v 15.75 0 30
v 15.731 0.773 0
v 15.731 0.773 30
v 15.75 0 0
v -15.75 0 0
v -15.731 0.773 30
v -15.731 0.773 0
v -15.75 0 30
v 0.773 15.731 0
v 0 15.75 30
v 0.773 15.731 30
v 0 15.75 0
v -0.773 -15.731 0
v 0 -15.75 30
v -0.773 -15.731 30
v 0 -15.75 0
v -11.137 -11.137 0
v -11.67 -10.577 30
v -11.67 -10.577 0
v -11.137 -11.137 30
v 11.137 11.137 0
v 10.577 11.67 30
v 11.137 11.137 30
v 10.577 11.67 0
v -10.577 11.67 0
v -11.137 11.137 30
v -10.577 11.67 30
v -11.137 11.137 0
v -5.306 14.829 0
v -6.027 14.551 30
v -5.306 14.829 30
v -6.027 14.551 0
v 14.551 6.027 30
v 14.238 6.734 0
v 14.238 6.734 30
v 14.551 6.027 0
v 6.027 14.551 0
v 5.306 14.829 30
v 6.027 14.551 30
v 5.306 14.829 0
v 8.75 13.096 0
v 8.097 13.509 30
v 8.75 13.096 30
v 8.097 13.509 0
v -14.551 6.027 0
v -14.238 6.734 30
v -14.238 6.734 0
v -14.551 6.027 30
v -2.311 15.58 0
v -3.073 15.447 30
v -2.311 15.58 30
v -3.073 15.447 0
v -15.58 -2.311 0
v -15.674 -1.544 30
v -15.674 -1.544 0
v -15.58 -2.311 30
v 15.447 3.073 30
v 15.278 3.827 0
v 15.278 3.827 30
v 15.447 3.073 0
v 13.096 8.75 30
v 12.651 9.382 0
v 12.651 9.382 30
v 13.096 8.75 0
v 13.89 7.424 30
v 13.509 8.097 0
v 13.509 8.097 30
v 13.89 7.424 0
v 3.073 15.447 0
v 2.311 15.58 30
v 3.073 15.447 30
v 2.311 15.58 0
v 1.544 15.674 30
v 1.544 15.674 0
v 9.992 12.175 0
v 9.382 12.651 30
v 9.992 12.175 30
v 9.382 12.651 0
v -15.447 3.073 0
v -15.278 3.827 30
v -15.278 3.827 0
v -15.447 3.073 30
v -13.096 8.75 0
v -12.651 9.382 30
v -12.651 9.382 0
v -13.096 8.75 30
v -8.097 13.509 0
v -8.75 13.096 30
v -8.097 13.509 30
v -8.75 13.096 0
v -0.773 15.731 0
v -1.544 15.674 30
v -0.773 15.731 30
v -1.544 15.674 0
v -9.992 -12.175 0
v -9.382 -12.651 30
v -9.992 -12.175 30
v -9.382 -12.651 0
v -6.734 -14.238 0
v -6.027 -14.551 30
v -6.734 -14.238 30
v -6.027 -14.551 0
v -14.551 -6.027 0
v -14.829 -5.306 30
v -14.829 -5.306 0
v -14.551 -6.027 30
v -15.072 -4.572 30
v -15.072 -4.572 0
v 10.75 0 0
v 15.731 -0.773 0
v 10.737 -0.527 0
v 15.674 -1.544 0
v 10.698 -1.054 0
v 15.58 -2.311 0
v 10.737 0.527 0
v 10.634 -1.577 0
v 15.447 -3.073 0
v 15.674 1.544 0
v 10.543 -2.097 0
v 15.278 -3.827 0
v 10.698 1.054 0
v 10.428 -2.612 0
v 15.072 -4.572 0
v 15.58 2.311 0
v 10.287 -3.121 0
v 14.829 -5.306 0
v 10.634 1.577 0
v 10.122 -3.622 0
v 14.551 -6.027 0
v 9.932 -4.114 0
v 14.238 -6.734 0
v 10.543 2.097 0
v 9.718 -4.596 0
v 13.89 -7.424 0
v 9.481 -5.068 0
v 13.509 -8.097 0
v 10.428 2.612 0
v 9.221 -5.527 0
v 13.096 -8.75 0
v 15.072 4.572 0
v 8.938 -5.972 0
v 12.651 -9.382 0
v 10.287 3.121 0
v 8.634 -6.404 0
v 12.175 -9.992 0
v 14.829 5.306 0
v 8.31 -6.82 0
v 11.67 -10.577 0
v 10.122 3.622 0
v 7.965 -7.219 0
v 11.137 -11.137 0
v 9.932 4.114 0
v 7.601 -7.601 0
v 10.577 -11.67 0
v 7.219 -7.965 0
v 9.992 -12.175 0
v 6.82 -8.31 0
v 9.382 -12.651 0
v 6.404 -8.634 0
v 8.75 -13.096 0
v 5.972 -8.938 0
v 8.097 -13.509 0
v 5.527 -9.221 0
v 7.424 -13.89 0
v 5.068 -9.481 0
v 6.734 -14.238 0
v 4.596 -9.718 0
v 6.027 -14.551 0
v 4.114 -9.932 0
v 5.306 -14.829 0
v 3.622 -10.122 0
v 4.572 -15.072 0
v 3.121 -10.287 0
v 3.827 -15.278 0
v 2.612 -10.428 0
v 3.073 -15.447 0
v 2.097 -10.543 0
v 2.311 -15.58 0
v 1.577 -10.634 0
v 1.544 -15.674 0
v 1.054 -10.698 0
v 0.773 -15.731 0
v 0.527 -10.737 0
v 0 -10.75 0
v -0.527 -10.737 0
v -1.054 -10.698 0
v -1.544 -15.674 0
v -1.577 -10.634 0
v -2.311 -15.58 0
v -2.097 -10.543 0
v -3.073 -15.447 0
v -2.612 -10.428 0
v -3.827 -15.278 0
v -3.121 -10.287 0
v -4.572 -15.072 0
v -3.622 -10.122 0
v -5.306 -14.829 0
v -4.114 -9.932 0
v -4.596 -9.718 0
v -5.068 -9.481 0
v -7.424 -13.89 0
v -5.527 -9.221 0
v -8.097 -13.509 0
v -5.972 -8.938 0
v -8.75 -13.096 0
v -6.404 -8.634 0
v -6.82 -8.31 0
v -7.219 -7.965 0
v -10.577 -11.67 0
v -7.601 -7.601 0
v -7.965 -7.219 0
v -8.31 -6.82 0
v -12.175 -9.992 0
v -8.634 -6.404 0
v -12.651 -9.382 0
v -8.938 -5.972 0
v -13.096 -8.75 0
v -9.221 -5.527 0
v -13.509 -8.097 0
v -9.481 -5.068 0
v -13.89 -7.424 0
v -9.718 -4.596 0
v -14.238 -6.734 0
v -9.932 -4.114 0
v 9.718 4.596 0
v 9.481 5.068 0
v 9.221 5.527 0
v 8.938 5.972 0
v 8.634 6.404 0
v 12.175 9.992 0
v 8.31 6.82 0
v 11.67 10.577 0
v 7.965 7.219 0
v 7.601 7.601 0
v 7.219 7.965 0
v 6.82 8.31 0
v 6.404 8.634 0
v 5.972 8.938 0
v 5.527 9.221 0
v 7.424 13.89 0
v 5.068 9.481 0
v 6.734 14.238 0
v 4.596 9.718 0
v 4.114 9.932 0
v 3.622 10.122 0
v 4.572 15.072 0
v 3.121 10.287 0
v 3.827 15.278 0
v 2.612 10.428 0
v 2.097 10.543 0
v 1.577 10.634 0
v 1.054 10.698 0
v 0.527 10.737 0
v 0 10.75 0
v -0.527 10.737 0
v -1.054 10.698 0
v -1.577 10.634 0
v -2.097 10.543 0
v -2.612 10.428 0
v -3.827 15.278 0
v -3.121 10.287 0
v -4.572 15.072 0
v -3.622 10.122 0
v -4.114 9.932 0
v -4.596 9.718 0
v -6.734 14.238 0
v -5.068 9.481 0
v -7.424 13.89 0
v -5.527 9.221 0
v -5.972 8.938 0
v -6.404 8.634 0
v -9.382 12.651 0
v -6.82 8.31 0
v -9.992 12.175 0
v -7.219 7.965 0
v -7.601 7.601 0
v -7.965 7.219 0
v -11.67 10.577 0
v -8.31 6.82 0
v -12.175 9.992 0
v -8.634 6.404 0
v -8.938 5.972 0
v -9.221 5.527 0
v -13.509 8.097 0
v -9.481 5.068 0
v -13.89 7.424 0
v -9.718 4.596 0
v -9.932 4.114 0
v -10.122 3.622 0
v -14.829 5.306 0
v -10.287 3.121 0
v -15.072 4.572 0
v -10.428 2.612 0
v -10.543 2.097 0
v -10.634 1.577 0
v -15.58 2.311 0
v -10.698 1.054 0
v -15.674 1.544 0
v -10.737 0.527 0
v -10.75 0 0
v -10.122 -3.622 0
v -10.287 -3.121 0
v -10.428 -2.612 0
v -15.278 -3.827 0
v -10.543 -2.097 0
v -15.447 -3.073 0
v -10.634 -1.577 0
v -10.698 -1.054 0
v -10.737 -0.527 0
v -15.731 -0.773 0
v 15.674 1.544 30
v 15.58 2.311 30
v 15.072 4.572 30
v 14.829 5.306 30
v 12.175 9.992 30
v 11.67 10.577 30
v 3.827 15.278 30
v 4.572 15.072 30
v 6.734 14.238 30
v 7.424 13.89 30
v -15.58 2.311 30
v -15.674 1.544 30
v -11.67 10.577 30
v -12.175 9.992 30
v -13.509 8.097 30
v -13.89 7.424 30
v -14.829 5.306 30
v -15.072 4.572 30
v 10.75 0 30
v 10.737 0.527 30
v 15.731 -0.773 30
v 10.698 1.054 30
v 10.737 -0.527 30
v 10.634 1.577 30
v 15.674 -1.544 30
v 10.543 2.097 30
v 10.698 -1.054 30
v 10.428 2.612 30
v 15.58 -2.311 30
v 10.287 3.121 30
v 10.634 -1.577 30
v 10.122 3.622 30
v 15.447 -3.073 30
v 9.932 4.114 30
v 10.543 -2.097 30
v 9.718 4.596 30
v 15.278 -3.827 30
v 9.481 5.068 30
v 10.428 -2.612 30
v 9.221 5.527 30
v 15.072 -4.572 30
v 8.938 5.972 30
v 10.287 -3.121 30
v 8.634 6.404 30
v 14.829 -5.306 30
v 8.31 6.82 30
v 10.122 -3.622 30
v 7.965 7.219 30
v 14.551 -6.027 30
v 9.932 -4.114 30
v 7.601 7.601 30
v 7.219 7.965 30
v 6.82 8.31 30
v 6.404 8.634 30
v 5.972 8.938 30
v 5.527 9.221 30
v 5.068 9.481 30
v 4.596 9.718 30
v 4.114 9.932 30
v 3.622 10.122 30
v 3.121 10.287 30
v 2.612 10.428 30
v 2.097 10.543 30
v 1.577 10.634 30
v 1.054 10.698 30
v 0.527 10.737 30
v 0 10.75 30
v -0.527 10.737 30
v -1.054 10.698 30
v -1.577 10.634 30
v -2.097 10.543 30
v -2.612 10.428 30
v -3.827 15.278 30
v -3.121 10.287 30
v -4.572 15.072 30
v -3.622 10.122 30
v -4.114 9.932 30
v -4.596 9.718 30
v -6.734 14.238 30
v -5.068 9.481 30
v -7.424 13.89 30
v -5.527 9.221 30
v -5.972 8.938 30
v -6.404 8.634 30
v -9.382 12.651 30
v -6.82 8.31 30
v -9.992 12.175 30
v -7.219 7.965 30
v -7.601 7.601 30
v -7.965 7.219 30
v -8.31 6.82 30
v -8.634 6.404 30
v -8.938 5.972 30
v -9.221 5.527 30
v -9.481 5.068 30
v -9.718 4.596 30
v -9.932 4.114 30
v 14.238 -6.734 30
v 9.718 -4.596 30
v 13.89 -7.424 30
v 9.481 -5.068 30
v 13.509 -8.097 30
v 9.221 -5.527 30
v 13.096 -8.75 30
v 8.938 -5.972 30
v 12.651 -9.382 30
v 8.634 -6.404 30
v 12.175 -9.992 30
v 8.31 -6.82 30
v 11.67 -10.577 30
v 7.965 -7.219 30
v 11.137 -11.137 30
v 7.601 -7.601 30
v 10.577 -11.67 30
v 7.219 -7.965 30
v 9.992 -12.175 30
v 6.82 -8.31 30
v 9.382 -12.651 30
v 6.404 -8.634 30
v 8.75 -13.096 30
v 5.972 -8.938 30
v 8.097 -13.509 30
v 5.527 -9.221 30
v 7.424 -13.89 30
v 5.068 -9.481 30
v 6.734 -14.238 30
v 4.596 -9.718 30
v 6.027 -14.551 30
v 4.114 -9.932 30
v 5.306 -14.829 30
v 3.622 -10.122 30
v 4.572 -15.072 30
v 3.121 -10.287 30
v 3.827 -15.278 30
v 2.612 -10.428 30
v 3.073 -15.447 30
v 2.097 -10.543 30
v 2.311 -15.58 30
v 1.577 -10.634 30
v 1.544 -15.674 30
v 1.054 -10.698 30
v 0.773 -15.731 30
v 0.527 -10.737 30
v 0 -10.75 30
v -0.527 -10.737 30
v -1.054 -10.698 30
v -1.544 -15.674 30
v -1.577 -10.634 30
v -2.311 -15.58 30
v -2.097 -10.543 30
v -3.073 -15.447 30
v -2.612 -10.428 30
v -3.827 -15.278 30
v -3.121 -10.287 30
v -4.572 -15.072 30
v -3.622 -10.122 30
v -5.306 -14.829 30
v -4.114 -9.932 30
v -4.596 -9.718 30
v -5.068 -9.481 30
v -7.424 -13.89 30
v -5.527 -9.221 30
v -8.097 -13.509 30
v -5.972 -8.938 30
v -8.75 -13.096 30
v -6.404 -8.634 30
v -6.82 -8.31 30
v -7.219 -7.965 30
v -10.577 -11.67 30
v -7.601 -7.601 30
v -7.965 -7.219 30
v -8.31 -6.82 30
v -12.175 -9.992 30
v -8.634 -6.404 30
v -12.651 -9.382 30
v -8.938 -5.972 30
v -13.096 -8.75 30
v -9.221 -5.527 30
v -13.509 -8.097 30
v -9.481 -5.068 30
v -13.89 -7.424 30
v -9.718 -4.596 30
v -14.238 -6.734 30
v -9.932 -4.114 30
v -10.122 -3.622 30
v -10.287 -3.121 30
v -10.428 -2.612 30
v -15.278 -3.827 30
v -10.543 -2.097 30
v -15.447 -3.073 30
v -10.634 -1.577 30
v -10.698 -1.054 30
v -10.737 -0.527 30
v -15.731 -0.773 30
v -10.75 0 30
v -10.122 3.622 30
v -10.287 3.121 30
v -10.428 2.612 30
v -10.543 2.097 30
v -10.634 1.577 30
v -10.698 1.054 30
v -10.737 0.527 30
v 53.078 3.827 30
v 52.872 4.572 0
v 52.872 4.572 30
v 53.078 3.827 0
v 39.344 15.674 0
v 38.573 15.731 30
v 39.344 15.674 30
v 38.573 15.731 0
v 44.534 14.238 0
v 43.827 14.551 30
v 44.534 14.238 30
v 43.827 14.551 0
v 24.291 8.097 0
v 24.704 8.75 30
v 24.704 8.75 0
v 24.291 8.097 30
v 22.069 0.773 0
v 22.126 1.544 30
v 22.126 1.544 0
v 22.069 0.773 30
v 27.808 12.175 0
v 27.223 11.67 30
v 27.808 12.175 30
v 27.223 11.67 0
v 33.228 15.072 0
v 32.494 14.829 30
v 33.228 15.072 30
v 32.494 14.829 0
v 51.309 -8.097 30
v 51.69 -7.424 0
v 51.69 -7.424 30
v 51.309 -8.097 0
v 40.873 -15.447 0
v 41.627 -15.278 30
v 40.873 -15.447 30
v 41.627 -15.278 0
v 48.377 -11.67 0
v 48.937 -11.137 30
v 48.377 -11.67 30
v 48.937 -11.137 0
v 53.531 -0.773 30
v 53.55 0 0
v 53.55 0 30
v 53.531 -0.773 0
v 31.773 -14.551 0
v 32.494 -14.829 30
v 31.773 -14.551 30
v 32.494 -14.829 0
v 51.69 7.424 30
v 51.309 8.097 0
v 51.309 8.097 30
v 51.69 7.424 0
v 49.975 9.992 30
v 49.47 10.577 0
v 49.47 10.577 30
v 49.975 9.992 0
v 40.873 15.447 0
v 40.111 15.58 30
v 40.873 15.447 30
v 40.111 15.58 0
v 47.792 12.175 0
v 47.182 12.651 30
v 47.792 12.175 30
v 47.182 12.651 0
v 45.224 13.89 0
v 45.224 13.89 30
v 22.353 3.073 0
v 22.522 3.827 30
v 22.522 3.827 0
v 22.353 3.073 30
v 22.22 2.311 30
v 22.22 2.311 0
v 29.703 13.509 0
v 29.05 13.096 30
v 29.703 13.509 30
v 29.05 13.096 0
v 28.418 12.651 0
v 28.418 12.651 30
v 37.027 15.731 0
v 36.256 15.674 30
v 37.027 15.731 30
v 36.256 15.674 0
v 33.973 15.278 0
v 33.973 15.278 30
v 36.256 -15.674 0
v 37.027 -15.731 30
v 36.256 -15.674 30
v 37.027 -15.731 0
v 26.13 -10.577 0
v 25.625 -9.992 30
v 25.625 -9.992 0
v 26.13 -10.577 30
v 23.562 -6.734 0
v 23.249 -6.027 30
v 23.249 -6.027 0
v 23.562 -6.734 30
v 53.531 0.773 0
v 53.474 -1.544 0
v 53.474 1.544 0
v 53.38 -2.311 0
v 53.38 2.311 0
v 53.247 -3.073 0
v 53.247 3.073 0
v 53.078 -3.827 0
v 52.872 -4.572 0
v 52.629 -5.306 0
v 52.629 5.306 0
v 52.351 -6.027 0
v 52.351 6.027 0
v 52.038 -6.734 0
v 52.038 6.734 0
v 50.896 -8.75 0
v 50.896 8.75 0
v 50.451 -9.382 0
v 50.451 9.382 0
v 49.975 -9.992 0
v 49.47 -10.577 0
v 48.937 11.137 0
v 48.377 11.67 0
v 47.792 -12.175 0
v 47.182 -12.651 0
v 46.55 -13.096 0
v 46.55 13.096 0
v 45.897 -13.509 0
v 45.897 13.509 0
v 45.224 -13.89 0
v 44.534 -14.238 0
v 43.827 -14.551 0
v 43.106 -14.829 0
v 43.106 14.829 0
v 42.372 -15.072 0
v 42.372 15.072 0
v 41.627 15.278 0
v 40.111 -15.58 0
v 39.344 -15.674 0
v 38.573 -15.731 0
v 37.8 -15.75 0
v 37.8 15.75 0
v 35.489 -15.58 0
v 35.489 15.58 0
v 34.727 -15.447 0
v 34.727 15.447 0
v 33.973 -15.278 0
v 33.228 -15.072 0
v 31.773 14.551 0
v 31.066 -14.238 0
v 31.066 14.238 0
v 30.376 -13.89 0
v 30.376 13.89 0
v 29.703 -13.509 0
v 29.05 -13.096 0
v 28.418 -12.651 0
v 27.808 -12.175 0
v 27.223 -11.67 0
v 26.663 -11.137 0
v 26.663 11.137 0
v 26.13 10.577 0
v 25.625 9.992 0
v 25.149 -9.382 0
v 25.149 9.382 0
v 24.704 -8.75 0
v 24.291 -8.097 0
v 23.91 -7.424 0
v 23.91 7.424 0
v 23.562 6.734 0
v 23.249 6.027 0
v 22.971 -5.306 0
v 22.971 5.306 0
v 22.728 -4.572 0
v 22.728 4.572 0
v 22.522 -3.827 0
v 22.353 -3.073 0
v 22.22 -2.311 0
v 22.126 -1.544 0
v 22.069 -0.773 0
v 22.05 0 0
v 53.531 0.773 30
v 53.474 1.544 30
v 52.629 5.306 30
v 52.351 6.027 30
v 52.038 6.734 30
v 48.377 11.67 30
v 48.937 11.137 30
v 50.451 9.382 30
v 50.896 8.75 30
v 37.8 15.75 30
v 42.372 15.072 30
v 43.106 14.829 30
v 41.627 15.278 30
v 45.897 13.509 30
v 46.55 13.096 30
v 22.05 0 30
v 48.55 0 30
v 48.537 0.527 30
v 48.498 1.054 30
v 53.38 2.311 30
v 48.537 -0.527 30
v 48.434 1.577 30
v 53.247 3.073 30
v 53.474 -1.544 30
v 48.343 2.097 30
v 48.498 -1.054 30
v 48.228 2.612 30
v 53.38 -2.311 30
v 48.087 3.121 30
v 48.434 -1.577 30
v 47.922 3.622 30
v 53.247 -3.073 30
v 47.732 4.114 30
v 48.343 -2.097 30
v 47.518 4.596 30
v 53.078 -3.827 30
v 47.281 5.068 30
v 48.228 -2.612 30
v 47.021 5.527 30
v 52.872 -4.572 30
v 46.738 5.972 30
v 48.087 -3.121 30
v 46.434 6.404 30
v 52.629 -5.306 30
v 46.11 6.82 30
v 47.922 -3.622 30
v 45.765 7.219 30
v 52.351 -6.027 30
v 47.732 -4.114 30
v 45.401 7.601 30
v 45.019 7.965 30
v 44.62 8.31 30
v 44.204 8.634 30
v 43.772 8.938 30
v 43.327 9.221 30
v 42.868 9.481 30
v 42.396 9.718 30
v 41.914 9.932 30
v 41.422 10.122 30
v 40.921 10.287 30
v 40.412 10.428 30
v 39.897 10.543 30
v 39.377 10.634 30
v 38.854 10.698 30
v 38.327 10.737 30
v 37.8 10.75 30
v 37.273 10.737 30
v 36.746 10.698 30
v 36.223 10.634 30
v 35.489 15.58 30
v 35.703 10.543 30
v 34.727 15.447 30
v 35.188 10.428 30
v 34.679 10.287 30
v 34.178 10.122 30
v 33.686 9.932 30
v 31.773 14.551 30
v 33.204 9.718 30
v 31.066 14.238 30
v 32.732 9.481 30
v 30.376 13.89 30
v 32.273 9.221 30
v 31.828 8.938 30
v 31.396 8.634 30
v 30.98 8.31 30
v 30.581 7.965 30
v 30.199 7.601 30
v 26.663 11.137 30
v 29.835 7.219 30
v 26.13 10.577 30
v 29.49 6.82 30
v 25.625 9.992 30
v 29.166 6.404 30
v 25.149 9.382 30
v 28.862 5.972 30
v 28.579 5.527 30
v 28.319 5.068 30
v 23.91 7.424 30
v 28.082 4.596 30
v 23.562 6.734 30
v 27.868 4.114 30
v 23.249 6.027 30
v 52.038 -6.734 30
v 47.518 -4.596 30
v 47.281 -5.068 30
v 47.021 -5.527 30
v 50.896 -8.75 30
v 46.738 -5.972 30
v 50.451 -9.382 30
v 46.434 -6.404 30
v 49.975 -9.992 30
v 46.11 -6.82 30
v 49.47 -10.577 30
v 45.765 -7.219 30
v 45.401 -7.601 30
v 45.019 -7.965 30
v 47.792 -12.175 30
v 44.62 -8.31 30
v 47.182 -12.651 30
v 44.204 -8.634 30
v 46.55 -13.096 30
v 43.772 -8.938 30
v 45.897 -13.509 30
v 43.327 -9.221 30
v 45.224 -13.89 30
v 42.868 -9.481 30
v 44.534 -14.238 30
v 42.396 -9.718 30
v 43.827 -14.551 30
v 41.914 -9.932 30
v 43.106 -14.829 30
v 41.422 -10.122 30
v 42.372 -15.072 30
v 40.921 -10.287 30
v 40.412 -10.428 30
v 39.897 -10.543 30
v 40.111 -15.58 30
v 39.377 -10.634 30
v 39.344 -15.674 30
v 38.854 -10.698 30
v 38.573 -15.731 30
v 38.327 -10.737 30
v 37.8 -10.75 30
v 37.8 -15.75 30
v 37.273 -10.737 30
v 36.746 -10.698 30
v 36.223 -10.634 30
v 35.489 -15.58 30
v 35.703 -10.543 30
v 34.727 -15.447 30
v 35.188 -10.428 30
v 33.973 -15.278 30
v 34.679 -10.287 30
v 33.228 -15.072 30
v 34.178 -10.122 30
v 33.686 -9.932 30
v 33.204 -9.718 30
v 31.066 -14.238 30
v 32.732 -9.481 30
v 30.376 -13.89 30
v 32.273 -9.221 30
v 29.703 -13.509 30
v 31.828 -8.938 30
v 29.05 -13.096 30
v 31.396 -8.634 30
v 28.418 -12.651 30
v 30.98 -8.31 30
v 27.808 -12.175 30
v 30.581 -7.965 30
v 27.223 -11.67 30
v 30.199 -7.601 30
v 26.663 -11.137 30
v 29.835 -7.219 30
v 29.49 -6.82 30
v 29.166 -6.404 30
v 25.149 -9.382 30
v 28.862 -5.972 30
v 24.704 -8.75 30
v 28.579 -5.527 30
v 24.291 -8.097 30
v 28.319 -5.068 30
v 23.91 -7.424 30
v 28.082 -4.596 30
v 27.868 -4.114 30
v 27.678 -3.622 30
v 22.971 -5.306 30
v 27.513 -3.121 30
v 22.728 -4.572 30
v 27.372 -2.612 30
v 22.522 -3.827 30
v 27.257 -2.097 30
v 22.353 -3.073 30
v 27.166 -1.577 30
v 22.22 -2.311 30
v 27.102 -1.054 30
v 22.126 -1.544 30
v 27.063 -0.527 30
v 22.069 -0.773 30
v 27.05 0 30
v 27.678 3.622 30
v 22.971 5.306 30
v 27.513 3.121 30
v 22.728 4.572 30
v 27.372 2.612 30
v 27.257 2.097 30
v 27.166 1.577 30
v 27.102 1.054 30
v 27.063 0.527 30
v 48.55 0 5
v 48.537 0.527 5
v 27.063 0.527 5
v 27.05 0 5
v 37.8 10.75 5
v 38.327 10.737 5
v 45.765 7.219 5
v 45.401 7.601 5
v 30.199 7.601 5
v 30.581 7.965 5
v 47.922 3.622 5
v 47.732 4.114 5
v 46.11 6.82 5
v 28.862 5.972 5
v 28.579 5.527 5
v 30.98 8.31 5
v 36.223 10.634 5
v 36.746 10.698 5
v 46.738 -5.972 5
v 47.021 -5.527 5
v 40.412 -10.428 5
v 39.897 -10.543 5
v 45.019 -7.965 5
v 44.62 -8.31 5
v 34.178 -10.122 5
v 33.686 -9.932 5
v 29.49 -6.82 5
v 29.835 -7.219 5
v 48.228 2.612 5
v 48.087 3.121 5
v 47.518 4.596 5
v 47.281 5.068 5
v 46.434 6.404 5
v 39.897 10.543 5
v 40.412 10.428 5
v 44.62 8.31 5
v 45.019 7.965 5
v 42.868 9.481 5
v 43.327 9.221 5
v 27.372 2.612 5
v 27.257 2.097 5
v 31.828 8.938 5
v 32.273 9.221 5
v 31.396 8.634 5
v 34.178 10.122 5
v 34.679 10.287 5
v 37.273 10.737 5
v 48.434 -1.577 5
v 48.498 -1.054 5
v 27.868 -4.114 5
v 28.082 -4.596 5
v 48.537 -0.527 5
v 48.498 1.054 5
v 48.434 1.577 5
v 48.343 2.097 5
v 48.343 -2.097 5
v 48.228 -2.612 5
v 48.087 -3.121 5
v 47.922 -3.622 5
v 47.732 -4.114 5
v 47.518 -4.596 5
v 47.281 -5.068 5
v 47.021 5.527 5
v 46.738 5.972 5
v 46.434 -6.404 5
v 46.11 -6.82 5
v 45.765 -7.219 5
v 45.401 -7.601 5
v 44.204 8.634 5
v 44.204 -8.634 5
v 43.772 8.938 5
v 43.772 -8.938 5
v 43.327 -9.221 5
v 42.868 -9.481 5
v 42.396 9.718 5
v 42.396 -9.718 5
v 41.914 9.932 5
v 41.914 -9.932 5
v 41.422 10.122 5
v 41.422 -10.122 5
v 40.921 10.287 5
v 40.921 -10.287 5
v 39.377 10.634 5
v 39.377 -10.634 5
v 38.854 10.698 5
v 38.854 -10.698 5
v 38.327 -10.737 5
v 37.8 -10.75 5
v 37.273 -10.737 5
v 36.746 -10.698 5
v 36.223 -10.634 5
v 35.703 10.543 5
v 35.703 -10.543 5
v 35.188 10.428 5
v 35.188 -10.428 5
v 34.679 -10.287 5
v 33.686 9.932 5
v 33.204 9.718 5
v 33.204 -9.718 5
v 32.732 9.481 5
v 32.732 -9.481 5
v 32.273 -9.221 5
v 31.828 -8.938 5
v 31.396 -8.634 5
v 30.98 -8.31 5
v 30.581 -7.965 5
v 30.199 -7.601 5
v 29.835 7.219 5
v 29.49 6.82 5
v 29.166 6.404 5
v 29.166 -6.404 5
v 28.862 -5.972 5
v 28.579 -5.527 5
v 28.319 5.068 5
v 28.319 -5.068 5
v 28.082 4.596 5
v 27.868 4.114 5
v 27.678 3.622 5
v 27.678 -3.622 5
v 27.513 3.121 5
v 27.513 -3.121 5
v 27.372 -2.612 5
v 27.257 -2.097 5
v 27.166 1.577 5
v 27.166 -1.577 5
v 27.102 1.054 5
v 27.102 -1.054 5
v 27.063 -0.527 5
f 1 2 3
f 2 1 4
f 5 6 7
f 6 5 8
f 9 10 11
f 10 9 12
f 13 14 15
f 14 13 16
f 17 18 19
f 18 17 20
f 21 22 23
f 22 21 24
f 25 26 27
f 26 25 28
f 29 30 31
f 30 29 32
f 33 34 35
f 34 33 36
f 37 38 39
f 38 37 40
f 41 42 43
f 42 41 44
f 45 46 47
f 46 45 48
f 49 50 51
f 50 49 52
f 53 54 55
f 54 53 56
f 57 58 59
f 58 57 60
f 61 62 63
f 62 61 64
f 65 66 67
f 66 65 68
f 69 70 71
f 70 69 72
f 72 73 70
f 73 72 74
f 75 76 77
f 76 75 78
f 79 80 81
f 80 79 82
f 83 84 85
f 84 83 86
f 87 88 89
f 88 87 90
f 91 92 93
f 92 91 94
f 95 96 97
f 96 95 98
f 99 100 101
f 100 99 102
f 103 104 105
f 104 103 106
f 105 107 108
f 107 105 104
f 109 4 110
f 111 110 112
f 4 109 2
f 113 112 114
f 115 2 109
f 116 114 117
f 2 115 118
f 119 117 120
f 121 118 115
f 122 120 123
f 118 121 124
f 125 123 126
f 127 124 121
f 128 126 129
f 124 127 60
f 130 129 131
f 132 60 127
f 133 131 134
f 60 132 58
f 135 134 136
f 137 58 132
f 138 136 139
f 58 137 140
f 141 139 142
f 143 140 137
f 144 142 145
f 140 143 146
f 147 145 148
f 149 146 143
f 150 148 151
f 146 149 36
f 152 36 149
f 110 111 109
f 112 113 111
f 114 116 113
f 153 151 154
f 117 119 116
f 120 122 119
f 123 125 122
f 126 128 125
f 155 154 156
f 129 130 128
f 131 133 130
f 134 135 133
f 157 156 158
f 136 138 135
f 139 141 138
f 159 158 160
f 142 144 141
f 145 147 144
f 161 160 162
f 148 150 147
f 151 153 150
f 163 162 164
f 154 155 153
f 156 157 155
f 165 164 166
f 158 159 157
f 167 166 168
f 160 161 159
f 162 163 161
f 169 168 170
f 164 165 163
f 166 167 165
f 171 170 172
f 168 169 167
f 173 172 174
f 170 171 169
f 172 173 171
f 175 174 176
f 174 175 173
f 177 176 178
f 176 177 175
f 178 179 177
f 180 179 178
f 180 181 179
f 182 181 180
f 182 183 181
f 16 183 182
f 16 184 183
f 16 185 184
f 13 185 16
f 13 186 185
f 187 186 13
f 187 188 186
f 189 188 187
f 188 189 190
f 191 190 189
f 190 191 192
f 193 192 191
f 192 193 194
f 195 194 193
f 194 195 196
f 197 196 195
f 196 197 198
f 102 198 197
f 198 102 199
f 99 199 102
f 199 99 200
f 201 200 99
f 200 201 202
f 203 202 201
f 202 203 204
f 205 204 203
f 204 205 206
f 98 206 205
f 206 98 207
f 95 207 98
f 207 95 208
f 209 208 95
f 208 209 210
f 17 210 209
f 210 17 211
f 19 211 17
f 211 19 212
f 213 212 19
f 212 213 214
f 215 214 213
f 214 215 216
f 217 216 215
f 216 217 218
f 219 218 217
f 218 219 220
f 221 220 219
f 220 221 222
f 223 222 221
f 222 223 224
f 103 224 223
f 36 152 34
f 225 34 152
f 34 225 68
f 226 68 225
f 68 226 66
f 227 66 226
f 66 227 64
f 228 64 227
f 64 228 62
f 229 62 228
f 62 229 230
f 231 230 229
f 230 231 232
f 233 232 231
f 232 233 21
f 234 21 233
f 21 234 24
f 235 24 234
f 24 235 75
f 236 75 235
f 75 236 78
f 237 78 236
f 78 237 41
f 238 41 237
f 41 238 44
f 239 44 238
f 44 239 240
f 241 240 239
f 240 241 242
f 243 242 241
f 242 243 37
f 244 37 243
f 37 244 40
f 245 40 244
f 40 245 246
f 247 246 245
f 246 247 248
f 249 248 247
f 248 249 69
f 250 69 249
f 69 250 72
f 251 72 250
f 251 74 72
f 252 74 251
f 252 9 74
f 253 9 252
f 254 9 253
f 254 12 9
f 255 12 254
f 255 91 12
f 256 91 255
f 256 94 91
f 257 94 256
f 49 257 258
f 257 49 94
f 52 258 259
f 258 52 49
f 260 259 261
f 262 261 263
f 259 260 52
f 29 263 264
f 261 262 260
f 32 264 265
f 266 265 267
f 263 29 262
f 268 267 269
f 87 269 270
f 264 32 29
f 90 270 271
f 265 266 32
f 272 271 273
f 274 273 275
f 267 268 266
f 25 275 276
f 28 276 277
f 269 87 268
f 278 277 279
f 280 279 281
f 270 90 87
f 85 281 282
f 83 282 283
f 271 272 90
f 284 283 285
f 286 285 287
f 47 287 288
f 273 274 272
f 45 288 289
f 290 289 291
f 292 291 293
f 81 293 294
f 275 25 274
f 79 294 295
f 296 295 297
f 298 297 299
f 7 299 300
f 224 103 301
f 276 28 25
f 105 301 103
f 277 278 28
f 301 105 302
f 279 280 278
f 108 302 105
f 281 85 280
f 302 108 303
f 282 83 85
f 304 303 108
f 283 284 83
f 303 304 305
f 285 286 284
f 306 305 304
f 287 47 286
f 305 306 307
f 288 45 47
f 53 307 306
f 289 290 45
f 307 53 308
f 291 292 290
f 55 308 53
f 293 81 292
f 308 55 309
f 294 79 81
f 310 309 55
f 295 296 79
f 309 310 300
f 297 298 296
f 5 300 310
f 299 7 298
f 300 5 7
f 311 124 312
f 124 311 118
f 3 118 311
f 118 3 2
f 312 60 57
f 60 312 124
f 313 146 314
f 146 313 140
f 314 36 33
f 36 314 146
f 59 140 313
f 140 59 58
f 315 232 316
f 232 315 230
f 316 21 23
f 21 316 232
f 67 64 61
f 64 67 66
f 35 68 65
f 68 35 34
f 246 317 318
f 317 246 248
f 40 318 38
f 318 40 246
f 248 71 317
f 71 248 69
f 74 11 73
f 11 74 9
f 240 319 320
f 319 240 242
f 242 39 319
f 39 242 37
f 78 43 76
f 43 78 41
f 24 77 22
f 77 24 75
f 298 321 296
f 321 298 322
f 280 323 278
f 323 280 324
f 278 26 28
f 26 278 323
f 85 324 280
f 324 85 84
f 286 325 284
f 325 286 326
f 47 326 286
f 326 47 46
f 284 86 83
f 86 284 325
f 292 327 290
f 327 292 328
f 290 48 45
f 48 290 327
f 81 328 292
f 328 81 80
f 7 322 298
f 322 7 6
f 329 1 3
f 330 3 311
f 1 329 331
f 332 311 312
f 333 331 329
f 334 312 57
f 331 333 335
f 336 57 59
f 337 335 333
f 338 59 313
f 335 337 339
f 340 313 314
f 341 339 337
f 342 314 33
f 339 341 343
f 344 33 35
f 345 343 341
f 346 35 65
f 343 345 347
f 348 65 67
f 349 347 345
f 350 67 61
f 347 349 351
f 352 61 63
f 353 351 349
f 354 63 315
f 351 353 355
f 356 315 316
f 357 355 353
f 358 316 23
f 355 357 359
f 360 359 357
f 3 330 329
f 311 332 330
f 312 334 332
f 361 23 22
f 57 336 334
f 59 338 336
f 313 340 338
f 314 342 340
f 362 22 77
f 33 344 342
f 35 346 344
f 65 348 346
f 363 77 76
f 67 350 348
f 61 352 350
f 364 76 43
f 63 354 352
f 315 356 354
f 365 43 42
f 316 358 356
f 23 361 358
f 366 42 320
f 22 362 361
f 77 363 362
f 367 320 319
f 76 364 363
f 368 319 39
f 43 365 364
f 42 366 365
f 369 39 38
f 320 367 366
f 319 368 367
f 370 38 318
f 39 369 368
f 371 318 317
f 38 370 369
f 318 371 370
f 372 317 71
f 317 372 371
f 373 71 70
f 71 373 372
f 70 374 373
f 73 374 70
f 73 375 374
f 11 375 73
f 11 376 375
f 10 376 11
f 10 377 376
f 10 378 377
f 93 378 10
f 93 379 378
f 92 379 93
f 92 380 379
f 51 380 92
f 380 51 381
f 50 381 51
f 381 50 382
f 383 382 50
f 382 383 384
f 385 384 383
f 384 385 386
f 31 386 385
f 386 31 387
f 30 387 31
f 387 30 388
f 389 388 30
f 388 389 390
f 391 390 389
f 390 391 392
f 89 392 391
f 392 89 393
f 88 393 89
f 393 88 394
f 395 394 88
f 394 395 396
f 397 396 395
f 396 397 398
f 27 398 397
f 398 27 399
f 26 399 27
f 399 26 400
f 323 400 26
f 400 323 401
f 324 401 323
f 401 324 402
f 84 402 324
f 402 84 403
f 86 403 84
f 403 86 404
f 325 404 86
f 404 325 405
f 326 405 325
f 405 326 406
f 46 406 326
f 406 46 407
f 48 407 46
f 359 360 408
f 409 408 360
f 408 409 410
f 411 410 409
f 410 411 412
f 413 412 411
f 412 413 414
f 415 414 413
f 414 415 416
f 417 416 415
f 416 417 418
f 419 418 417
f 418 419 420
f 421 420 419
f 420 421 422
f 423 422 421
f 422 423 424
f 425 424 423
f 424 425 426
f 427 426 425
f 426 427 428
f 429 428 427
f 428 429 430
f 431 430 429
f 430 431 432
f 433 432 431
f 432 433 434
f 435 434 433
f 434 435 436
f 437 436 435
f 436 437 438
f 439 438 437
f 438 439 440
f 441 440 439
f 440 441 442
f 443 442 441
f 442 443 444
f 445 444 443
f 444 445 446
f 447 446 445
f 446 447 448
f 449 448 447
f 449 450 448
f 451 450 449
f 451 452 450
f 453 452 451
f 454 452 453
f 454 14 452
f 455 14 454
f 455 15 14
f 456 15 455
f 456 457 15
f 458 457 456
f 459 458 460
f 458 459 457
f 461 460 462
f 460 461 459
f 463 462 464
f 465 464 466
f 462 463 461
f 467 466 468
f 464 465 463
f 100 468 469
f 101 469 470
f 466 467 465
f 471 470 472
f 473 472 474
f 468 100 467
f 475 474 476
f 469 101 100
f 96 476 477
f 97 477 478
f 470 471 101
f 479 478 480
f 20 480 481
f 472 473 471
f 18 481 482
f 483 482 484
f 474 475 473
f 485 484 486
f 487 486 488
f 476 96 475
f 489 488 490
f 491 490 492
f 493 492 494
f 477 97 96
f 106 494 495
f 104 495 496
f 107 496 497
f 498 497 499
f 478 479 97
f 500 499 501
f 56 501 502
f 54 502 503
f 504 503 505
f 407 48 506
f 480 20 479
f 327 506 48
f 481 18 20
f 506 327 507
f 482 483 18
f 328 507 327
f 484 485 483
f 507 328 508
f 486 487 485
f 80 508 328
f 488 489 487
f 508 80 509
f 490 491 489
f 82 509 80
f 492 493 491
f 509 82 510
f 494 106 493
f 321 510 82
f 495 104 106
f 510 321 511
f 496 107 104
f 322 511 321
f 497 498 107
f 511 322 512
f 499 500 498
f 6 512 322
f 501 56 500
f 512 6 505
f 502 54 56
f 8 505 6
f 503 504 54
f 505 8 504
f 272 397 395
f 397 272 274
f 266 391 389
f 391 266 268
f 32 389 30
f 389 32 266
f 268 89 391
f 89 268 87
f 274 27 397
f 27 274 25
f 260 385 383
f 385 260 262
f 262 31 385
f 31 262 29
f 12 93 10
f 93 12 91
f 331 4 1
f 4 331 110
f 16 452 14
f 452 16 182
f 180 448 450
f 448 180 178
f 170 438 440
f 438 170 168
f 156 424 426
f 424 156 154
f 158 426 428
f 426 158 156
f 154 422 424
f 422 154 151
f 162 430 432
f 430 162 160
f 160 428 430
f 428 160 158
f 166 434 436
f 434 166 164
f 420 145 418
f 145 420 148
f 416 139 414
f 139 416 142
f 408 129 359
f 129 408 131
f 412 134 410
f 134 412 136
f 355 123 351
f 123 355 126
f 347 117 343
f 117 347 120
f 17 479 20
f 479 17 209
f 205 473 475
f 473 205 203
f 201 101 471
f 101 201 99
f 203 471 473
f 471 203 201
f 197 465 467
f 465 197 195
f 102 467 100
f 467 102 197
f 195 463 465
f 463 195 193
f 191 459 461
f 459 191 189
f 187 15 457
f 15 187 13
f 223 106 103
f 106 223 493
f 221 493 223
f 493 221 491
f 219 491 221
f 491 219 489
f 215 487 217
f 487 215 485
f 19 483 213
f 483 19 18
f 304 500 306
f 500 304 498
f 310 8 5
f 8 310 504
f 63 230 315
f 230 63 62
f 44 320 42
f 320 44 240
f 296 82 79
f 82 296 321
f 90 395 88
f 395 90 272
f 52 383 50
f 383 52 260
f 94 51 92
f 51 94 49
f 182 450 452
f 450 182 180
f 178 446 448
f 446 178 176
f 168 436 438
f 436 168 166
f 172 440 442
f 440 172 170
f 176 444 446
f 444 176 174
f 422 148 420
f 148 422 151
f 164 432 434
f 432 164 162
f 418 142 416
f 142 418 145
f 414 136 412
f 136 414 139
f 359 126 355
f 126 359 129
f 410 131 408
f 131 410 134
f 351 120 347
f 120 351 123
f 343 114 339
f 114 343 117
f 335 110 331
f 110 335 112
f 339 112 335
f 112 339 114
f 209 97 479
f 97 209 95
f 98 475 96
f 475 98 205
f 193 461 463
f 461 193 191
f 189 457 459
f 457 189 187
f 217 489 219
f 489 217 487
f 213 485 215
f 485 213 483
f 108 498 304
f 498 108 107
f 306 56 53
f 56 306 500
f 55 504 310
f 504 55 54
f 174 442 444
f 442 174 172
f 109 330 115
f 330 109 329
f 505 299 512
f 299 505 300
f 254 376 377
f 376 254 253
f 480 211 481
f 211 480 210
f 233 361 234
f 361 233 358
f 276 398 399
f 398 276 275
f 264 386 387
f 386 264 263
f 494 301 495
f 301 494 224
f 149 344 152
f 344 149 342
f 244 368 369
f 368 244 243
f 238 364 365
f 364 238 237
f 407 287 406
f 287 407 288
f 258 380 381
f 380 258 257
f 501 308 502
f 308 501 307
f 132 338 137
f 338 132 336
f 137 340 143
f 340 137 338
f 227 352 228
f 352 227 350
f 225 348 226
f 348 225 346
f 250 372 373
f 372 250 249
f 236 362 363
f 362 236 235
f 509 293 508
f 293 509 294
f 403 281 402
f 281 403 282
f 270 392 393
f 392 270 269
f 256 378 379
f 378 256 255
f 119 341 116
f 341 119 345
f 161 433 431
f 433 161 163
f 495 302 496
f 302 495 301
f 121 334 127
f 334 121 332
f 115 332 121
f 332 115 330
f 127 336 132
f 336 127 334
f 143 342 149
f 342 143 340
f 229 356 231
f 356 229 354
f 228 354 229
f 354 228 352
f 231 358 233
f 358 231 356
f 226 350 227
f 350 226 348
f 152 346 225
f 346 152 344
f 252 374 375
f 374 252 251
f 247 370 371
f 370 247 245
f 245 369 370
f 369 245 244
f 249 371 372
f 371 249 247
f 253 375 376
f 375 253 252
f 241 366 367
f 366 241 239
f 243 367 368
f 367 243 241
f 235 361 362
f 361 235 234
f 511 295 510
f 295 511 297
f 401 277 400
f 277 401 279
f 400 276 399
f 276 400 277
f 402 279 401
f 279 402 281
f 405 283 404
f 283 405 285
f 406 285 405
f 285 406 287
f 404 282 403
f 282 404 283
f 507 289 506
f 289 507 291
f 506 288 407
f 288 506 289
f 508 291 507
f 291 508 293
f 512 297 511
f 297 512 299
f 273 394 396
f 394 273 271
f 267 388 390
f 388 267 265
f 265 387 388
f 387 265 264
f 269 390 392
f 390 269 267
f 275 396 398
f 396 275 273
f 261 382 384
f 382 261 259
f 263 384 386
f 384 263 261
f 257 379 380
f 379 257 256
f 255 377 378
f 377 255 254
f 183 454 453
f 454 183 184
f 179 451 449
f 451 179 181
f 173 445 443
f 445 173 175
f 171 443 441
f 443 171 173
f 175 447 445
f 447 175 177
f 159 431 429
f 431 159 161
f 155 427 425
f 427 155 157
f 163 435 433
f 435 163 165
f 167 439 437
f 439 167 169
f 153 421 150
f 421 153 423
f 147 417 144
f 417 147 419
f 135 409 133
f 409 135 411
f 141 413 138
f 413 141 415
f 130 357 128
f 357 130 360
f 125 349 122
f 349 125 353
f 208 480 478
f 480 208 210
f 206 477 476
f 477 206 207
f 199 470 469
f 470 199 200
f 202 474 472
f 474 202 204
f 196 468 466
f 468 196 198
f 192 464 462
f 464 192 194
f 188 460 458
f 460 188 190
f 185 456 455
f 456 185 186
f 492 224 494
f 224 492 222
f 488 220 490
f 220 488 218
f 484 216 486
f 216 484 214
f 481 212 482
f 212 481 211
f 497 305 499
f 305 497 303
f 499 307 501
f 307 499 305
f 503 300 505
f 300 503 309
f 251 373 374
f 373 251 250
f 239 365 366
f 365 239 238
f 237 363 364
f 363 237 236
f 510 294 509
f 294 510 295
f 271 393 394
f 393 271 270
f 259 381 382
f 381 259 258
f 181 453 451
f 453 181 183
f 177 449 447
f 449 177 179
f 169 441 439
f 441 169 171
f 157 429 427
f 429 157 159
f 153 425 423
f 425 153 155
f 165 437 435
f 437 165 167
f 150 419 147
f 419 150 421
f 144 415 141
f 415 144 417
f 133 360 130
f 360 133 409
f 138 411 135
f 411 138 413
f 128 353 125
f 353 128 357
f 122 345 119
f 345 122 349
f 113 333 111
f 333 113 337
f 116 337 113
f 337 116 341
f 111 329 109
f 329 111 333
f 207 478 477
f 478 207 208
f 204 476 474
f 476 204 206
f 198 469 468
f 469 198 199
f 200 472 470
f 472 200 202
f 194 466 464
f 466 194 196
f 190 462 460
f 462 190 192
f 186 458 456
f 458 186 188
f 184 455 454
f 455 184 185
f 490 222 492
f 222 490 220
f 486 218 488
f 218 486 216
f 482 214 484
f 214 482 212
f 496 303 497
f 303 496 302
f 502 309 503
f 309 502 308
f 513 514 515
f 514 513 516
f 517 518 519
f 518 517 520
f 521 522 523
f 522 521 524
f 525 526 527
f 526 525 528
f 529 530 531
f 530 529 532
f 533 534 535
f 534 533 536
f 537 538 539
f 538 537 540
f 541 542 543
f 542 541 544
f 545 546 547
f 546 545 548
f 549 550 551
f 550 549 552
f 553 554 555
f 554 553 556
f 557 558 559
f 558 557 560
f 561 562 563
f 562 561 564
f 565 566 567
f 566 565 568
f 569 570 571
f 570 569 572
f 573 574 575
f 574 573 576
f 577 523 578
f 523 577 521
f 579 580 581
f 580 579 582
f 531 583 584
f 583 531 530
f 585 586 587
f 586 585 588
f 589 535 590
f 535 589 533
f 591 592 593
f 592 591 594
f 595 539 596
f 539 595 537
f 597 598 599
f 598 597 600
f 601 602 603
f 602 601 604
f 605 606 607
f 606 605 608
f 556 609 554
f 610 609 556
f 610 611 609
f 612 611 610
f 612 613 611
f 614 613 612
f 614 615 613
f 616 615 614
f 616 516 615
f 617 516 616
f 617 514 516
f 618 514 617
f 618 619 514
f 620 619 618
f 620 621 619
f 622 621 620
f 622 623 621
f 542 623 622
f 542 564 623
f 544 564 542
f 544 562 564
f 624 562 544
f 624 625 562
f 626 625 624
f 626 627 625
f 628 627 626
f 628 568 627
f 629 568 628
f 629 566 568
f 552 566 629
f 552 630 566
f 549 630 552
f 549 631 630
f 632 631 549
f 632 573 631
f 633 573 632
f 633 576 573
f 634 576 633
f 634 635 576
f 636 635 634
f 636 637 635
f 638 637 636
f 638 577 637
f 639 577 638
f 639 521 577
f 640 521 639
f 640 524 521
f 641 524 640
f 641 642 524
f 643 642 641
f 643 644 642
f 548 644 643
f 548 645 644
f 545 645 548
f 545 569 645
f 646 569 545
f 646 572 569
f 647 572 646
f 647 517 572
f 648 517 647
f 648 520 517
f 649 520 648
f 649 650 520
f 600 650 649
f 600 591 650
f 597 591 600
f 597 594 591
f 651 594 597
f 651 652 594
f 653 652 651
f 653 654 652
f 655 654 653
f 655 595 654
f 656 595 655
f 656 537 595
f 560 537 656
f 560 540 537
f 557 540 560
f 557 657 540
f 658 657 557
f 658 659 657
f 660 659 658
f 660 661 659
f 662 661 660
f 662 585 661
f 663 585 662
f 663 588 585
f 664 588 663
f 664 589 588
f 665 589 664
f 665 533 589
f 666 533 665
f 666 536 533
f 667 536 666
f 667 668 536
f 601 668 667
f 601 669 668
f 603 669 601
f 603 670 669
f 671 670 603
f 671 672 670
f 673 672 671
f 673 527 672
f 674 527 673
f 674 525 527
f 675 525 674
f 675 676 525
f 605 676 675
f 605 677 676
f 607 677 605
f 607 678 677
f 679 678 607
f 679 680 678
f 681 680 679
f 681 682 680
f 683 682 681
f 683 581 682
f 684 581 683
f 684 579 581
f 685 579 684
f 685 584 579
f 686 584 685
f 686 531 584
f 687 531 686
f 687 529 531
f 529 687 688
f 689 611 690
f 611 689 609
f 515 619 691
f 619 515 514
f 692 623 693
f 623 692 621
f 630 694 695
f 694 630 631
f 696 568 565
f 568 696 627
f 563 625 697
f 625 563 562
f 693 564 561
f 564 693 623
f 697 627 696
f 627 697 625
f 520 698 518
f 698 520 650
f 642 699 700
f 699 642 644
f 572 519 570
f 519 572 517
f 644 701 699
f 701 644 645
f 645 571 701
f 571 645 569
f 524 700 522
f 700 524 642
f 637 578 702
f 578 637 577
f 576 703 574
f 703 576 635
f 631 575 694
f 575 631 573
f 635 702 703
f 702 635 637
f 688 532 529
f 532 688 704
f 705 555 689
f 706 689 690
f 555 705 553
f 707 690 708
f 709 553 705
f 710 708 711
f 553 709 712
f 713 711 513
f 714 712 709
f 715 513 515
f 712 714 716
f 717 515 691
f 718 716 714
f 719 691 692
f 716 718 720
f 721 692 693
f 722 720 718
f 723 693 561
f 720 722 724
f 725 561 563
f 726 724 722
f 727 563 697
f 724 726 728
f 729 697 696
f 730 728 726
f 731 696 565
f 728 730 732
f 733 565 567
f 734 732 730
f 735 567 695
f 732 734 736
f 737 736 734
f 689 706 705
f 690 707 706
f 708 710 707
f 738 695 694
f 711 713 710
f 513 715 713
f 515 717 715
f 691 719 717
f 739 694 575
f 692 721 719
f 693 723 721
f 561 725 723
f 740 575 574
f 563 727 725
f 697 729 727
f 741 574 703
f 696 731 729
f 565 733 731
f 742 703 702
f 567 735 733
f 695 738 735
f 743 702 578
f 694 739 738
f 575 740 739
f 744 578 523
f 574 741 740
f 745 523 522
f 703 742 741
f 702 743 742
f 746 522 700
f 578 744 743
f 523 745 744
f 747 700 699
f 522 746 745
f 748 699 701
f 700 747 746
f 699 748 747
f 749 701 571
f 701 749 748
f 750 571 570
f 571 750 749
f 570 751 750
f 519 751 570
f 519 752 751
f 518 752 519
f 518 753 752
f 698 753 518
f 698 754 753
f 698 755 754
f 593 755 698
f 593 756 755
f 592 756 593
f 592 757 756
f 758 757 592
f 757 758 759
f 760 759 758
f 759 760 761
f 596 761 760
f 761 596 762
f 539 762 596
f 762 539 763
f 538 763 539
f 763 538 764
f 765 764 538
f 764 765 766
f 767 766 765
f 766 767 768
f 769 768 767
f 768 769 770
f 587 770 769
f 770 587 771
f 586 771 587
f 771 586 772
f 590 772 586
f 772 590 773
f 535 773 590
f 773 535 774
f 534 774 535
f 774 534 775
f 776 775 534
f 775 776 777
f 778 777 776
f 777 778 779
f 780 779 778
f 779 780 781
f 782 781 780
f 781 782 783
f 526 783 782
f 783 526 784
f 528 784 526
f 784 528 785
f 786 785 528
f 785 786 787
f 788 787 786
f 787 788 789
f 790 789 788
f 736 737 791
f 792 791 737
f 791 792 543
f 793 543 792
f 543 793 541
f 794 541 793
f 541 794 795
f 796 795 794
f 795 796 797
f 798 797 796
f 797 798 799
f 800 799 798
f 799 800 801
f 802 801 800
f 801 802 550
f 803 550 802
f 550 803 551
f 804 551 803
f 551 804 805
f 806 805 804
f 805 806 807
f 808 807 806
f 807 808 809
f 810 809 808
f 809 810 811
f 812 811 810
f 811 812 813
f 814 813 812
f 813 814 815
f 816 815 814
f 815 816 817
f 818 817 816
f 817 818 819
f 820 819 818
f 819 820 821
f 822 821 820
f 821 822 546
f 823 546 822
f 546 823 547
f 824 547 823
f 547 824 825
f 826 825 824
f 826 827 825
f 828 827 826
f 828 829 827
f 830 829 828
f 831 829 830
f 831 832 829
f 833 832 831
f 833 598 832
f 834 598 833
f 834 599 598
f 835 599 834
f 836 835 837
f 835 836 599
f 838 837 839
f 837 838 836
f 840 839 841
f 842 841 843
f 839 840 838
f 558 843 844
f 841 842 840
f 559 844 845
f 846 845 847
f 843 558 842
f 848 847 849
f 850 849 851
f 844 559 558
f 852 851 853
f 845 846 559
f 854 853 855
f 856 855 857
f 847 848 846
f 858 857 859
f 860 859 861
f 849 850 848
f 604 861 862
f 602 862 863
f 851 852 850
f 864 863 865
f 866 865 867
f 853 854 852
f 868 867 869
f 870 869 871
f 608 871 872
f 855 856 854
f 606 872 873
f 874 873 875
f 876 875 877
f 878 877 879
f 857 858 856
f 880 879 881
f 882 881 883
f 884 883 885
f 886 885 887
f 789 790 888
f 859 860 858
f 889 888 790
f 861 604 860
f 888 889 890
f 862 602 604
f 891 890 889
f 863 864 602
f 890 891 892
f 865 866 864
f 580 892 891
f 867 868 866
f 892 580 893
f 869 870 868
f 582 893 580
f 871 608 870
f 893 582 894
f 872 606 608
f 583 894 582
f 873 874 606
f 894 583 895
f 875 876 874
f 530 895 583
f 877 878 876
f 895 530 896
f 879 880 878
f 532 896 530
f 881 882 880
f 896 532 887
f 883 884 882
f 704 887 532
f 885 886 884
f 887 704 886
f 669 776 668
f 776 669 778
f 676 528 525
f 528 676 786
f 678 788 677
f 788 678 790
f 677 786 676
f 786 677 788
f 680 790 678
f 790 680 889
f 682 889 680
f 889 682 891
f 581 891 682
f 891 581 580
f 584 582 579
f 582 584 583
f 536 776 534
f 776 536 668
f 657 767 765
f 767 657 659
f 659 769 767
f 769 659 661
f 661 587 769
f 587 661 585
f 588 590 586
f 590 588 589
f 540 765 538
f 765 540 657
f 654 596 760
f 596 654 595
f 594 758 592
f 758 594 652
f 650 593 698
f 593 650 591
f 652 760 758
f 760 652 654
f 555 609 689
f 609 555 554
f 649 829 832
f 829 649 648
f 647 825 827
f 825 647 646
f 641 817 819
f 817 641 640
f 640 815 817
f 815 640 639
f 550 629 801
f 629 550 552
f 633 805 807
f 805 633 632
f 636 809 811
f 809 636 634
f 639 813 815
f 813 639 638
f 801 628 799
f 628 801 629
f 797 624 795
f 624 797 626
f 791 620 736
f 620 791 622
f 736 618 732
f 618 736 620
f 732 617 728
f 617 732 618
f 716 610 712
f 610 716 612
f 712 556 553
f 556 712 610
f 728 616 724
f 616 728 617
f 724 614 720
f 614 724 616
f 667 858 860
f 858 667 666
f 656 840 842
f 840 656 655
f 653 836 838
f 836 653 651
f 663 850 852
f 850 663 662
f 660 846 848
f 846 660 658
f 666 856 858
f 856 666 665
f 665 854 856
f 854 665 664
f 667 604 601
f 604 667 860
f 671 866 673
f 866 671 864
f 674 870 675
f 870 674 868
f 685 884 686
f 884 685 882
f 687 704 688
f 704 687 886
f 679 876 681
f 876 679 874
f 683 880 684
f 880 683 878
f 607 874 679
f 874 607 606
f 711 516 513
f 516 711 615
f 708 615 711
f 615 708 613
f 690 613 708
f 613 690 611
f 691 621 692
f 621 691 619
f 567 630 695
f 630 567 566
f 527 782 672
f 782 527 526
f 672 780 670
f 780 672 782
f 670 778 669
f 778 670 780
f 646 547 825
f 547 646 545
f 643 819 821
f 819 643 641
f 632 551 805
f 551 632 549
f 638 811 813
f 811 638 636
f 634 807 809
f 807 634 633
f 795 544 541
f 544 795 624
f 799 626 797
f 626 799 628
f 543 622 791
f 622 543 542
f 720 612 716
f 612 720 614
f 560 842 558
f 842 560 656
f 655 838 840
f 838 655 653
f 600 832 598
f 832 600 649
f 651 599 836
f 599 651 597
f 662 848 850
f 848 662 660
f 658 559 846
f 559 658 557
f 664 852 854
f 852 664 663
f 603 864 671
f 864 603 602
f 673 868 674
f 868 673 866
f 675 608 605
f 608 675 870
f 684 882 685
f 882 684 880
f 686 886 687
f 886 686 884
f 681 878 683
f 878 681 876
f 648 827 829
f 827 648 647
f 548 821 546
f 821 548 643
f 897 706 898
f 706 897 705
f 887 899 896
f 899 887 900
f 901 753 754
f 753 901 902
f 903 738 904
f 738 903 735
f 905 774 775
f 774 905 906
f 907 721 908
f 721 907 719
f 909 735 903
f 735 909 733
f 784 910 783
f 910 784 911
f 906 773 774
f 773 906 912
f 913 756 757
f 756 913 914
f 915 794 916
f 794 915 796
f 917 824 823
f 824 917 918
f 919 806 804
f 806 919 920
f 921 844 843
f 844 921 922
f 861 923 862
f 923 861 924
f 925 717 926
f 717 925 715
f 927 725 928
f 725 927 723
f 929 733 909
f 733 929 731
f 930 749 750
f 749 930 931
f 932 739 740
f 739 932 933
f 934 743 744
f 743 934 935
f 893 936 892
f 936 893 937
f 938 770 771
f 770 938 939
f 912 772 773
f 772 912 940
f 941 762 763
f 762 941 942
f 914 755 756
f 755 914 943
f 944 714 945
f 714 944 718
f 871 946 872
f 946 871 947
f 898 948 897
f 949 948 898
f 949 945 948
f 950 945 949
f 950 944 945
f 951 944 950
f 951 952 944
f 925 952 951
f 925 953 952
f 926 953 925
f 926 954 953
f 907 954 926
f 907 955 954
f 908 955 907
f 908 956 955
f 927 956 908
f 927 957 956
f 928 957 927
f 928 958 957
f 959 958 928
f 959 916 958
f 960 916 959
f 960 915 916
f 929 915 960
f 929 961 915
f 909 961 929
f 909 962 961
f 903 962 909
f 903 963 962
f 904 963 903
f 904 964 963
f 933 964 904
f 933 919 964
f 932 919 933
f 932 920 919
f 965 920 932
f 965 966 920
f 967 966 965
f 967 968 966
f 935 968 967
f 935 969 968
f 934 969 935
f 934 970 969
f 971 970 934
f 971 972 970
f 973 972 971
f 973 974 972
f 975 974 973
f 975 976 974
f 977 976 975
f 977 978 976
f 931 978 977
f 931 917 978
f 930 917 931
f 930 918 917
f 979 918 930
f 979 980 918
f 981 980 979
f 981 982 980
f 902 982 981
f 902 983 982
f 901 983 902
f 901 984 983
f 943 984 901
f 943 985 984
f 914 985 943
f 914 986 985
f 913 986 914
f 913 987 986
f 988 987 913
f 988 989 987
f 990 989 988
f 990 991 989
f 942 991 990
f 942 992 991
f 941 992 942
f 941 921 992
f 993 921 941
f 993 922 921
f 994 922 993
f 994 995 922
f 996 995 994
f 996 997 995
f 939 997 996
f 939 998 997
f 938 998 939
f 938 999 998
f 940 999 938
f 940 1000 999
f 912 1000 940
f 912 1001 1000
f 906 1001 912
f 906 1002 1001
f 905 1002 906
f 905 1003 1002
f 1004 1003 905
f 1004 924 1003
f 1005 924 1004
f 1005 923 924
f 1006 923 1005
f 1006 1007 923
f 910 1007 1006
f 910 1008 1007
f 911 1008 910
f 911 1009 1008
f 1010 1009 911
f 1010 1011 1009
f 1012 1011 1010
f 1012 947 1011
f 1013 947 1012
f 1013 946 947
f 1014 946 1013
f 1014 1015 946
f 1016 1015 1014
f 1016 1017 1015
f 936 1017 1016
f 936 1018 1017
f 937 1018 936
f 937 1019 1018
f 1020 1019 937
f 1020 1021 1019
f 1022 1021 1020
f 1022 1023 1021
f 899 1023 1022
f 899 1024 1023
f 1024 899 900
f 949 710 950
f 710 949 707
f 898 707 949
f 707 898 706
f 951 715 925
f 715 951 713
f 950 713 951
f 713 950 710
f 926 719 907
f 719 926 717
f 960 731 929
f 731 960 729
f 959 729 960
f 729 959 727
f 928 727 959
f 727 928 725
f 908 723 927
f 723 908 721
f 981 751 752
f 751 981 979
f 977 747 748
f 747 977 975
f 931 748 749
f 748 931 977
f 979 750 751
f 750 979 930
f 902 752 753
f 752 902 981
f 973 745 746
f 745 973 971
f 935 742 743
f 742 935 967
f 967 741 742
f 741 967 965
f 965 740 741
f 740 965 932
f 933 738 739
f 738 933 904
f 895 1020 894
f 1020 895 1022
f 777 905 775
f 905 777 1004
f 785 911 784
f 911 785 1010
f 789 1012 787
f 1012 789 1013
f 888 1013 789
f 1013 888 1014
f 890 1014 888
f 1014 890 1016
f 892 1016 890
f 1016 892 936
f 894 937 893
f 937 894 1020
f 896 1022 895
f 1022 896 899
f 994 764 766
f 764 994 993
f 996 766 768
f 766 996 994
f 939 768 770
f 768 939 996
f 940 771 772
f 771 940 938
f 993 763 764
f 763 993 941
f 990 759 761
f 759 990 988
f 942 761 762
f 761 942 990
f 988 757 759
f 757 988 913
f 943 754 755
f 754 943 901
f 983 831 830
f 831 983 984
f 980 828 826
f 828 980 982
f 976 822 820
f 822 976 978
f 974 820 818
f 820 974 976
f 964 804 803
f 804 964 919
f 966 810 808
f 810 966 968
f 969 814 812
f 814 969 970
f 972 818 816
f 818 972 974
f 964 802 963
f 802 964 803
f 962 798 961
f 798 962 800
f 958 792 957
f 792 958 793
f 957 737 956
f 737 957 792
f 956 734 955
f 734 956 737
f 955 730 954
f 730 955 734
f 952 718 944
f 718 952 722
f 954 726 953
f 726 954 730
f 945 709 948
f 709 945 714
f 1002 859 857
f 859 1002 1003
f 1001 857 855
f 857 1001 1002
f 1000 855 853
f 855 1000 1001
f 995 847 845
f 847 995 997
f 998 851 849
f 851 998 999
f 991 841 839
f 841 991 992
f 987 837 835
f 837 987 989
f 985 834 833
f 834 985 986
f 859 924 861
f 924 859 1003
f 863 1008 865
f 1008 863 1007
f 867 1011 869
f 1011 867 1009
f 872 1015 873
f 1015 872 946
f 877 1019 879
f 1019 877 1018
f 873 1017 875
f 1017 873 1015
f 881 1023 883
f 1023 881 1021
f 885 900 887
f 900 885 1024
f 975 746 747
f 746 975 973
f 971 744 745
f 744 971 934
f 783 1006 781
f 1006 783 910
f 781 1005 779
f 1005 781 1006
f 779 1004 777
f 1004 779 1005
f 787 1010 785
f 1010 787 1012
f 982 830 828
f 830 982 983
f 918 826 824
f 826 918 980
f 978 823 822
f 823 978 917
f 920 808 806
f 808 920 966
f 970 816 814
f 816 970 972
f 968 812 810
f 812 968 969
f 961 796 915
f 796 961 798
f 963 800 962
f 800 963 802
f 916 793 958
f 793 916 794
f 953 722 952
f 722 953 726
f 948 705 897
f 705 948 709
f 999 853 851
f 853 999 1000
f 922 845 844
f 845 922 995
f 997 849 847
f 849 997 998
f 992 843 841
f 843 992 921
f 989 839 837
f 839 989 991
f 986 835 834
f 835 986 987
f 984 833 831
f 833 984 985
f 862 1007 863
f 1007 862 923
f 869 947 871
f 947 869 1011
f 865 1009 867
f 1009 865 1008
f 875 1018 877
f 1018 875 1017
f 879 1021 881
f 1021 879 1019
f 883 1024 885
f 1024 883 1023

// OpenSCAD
/* [Main Settings] */

// The hole diameter of the adapter
Pipe_Diameter = 21.5; // [8:0.1:25]

// Height of the adapter
Adapter_Height = 30; // [10:40]

// Wall thickness of the adapter
Adapter_Thickness = 5; // [1:10]

/* [Hidden] */
// Fudge value for better preview rendering
f = 0.01; // [0:0.01:0.1]

// Number of line segments in a curve
$fn = 128; // [16:1:256]

/**
 * Module declaration to stop the Customizer from picking up the
 * variables that follow this declaration. It serves no functional
 * purpose.
 */
module __Customizer_Limit__ () {}

outer_diameter = Pipe_Diameter + 2*Adapter_Thickness;

module coupler() {
    difference() {
        cylinder(d = outer_diameter, h = Adapter_Height);
        translate([0, 0, -f])
            cylinder(d = Pipe_Diameter, h = Adapter_Height + 2*f);
    }
}

module cap() {
    difference() {
        cylinder(d = outer_diameter, h = Adapter_Height);
        translate([0, 0, Adapter_Thickness])
            cylinder(d = Pipe_Diameter, h = Adapter_Height);
    }
}

coupler();
translate([outer_diameter * 1.2, 0, 0])
    cap();
